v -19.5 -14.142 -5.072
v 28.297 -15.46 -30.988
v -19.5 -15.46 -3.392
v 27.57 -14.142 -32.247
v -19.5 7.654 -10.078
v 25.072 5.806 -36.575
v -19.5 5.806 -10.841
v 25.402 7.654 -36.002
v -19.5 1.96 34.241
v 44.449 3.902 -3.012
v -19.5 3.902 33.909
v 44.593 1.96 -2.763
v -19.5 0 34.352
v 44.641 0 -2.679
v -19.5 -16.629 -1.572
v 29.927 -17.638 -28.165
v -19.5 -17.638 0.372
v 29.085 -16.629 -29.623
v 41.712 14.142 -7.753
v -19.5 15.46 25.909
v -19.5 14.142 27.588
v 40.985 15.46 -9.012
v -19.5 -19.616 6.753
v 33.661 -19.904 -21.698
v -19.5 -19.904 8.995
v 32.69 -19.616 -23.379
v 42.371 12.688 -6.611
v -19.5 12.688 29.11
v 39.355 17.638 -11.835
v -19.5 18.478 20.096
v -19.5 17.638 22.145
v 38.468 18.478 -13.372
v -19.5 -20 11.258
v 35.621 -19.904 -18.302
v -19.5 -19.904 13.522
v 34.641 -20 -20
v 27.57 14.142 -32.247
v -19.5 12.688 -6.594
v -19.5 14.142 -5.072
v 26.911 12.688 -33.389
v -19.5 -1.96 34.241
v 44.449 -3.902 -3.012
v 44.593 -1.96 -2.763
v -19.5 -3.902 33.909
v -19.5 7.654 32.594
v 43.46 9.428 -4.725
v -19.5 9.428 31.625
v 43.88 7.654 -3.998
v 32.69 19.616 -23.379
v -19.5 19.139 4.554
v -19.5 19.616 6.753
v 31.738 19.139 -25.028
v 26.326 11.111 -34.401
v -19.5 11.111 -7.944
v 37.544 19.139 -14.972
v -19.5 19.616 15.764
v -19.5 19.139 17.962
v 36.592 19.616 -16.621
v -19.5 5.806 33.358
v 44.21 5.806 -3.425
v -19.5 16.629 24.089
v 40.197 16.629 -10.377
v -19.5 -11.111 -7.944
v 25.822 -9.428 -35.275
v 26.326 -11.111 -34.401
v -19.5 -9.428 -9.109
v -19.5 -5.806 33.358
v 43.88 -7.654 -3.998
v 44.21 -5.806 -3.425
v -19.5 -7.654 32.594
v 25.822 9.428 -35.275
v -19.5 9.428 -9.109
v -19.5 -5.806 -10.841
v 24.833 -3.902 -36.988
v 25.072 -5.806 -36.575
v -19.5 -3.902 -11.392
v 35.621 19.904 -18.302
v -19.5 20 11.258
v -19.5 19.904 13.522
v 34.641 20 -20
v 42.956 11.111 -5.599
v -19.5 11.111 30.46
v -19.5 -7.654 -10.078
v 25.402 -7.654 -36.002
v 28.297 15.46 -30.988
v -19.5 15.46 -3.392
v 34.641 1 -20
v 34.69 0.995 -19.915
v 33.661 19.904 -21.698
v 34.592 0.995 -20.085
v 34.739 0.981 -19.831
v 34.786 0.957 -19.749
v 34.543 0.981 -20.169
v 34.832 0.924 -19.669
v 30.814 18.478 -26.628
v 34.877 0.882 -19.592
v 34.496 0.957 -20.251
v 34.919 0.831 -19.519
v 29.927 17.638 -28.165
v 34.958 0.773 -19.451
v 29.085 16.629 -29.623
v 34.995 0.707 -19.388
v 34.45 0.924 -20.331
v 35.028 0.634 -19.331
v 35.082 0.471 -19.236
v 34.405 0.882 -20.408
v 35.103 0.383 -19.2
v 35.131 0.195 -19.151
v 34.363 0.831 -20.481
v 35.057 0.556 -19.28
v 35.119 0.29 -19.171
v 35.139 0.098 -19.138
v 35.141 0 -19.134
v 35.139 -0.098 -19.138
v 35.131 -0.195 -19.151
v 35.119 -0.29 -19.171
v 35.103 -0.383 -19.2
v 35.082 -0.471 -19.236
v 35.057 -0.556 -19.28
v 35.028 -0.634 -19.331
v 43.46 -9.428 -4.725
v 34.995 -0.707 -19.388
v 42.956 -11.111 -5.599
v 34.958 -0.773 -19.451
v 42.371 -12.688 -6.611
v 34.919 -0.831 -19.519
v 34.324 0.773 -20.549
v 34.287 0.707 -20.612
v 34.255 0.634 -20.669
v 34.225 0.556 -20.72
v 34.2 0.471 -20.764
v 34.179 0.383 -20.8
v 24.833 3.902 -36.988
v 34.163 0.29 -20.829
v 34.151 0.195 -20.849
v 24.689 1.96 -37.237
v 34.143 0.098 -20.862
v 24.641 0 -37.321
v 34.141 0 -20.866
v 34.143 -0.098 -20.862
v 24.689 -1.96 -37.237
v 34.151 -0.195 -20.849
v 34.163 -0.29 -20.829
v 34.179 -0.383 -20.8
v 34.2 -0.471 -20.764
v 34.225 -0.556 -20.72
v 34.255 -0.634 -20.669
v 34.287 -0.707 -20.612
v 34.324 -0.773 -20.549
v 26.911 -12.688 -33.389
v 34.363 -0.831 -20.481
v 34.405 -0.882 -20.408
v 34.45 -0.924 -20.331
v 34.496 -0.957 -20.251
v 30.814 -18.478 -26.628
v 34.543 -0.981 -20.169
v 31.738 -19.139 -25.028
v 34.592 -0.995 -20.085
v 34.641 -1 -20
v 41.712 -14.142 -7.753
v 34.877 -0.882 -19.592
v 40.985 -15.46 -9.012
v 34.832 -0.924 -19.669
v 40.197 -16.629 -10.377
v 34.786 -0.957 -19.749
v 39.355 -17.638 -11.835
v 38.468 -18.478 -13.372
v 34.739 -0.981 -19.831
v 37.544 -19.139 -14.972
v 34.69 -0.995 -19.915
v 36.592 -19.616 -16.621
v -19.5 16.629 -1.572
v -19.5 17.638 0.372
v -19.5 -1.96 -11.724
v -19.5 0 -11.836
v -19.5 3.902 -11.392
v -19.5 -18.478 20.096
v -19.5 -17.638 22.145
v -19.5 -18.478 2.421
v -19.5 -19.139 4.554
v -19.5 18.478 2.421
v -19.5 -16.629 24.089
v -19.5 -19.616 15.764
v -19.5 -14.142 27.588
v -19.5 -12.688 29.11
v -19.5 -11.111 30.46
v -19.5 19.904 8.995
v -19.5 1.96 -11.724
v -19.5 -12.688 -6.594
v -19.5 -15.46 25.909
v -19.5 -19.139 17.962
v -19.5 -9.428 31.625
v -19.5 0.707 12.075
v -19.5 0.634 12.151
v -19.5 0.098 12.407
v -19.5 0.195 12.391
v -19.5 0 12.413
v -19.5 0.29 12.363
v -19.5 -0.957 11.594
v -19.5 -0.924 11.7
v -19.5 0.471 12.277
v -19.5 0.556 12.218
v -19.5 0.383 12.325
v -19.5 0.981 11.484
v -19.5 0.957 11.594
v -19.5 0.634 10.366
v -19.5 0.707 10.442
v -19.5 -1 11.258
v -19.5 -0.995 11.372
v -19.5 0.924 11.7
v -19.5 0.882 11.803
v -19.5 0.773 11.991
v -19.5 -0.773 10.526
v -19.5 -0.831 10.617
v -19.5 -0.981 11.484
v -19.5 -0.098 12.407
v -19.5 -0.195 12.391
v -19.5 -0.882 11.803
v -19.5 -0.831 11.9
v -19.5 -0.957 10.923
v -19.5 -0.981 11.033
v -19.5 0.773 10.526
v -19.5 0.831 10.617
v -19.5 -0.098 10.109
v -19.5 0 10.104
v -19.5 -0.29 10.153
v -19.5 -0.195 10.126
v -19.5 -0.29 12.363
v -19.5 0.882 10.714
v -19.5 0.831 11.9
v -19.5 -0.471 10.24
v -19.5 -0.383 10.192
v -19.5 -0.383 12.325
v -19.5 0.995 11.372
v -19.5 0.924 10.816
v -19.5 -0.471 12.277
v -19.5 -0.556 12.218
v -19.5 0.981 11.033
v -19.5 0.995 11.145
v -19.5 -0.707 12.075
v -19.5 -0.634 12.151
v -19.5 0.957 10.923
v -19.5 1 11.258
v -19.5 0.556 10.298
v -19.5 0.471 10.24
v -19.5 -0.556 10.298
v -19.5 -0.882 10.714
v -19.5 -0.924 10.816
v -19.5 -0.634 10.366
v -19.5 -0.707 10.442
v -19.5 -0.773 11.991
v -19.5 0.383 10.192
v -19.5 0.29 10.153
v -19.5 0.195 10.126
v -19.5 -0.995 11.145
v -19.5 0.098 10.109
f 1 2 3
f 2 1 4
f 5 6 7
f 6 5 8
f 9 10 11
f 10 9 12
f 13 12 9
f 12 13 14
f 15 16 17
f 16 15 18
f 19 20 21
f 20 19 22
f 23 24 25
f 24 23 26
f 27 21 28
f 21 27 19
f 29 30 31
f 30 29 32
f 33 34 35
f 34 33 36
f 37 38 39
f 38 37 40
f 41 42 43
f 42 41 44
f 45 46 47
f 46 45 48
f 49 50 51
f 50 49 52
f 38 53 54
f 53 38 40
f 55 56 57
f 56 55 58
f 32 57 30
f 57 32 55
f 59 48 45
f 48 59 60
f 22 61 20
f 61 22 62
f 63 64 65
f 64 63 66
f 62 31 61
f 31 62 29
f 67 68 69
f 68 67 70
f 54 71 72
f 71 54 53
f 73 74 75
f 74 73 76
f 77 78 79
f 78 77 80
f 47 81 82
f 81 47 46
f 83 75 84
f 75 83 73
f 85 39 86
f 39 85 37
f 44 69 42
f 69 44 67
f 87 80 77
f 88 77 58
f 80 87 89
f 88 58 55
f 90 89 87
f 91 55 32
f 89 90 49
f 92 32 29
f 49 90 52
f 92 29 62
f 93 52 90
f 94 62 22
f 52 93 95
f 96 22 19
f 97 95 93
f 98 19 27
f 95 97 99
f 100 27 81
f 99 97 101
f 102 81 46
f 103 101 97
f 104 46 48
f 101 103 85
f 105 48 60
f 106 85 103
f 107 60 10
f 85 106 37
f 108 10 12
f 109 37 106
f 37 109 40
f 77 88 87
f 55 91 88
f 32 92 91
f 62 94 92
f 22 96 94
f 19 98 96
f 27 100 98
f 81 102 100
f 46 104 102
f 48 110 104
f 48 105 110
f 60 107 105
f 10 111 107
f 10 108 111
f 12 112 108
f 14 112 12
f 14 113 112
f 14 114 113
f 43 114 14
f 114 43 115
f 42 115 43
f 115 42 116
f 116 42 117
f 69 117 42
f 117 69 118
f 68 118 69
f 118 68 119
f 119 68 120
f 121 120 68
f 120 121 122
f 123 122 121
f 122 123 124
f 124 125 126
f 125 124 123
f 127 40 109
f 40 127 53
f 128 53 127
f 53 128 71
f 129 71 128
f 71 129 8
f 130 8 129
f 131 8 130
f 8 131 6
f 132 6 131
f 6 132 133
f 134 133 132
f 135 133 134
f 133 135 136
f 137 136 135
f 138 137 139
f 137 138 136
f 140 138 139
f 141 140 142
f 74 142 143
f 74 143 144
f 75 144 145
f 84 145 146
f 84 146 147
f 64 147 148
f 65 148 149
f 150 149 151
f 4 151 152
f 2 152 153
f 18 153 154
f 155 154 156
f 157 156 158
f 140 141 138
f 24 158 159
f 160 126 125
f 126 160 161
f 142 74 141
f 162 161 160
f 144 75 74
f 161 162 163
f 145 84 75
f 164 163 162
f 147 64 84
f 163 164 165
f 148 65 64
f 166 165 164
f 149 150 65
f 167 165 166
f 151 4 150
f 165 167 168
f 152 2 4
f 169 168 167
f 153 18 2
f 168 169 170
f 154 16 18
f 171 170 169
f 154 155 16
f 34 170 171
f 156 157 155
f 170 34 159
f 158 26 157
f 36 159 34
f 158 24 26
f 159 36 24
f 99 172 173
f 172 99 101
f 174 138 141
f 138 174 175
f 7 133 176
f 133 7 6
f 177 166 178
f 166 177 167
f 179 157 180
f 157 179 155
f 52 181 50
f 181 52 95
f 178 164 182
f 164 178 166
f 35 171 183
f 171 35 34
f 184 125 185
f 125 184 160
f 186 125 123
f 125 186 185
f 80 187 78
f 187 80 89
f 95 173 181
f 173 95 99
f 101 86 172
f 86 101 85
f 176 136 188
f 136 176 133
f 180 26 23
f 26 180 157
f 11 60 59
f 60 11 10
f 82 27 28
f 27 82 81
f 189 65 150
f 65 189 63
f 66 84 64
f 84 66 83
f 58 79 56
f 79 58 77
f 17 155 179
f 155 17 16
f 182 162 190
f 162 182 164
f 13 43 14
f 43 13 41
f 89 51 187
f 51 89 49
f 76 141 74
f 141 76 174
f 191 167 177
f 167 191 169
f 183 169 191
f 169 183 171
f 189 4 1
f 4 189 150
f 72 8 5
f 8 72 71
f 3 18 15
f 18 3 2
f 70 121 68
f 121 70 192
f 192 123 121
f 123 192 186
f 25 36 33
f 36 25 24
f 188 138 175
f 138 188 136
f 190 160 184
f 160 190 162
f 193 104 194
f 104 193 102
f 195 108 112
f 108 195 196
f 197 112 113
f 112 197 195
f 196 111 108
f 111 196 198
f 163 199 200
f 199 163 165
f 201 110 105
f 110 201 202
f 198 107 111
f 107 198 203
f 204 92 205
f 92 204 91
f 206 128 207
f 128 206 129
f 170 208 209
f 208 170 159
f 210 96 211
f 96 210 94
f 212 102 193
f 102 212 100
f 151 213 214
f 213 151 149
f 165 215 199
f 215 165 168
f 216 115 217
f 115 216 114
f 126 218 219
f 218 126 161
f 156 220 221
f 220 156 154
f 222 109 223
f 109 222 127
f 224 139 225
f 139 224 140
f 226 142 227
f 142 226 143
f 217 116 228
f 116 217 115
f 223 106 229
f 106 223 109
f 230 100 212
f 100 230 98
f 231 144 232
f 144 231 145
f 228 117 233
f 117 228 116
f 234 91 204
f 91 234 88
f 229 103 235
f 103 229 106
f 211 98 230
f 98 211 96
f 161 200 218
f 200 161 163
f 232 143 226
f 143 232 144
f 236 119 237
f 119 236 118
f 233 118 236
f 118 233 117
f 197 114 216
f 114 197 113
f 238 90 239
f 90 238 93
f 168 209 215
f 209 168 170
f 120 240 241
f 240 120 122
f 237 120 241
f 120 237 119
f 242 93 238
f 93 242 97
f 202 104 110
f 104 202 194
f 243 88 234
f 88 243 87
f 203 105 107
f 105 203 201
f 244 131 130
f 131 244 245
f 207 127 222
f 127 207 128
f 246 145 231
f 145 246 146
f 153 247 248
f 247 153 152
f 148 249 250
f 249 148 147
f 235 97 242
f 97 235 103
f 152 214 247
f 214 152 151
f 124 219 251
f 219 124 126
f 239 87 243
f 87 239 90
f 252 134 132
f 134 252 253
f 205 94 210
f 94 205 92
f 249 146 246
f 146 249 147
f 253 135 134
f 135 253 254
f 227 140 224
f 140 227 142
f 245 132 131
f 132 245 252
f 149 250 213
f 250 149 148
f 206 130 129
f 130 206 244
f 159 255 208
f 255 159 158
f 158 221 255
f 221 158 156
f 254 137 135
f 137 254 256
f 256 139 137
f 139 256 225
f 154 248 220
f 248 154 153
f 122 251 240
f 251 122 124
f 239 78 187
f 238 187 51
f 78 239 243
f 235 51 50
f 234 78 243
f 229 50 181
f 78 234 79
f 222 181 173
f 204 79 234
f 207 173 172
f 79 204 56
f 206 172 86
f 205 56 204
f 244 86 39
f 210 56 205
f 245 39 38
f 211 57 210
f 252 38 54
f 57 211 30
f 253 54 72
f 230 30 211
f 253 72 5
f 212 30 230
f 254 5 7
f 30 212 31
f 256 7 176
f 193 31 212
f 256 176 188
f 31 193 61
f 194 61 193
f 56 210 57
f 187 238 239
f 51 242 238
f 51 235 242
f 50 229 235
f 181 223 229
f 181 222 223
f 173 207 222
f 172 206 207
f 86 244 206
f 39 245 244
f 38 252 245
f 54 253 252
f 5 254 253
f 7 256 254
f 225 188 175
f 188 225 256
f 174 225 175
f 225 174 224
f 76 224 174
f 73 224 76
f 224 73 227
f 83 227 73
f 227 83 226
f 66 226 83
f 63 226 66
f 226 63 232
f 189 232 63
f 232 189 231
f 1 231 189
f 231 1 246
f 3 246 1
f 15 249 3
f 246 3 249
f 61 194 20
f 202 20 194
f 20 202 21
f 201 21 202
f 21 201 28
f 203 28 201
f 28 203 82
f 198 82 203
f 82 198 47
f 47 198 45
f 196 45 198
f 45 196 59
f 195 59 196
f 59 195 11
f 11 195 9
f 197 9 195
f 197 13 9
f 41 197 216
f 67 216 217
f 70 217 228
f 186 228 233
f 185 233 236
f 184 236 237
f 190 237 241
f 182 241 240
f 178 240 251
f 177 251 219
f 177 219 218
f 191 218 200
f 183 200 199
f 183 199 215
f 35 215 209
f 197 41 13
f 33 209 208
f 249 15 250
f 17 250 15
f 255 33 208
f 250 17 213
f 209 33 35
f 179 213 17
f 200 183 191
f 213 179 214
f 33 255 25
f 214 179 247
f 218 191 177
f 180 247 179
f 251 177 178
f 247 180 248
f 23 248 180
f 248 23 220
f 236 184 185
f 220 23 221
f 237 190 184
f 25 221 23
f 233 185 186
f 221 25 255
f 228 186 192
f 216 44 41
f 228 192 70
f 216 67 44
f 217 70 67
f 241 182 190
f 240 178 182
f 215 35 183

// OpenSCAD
$fn = 64;

Diam = 40;

Ancho = 40;
Profundidad = 100;
Largo = 80;

difference(){
    rotate([0,-60,0]) 
        difference(){
            cylinder(d=Diam, h=2*Diam, center = true);
            cylinder(d=2, h=2*Largo, center = true);
        }
//difference(){
//    rotate([0,-60,0]) 
//        difference(){
//            cylinder(d=25, h=30, center = true);
//            cylinder(d=25, h=30, center = true);
//        }
    translate([-Ancho,0,0]) cube([Ancho+1, Profundidad+1, Largo+1], center = true);


}
